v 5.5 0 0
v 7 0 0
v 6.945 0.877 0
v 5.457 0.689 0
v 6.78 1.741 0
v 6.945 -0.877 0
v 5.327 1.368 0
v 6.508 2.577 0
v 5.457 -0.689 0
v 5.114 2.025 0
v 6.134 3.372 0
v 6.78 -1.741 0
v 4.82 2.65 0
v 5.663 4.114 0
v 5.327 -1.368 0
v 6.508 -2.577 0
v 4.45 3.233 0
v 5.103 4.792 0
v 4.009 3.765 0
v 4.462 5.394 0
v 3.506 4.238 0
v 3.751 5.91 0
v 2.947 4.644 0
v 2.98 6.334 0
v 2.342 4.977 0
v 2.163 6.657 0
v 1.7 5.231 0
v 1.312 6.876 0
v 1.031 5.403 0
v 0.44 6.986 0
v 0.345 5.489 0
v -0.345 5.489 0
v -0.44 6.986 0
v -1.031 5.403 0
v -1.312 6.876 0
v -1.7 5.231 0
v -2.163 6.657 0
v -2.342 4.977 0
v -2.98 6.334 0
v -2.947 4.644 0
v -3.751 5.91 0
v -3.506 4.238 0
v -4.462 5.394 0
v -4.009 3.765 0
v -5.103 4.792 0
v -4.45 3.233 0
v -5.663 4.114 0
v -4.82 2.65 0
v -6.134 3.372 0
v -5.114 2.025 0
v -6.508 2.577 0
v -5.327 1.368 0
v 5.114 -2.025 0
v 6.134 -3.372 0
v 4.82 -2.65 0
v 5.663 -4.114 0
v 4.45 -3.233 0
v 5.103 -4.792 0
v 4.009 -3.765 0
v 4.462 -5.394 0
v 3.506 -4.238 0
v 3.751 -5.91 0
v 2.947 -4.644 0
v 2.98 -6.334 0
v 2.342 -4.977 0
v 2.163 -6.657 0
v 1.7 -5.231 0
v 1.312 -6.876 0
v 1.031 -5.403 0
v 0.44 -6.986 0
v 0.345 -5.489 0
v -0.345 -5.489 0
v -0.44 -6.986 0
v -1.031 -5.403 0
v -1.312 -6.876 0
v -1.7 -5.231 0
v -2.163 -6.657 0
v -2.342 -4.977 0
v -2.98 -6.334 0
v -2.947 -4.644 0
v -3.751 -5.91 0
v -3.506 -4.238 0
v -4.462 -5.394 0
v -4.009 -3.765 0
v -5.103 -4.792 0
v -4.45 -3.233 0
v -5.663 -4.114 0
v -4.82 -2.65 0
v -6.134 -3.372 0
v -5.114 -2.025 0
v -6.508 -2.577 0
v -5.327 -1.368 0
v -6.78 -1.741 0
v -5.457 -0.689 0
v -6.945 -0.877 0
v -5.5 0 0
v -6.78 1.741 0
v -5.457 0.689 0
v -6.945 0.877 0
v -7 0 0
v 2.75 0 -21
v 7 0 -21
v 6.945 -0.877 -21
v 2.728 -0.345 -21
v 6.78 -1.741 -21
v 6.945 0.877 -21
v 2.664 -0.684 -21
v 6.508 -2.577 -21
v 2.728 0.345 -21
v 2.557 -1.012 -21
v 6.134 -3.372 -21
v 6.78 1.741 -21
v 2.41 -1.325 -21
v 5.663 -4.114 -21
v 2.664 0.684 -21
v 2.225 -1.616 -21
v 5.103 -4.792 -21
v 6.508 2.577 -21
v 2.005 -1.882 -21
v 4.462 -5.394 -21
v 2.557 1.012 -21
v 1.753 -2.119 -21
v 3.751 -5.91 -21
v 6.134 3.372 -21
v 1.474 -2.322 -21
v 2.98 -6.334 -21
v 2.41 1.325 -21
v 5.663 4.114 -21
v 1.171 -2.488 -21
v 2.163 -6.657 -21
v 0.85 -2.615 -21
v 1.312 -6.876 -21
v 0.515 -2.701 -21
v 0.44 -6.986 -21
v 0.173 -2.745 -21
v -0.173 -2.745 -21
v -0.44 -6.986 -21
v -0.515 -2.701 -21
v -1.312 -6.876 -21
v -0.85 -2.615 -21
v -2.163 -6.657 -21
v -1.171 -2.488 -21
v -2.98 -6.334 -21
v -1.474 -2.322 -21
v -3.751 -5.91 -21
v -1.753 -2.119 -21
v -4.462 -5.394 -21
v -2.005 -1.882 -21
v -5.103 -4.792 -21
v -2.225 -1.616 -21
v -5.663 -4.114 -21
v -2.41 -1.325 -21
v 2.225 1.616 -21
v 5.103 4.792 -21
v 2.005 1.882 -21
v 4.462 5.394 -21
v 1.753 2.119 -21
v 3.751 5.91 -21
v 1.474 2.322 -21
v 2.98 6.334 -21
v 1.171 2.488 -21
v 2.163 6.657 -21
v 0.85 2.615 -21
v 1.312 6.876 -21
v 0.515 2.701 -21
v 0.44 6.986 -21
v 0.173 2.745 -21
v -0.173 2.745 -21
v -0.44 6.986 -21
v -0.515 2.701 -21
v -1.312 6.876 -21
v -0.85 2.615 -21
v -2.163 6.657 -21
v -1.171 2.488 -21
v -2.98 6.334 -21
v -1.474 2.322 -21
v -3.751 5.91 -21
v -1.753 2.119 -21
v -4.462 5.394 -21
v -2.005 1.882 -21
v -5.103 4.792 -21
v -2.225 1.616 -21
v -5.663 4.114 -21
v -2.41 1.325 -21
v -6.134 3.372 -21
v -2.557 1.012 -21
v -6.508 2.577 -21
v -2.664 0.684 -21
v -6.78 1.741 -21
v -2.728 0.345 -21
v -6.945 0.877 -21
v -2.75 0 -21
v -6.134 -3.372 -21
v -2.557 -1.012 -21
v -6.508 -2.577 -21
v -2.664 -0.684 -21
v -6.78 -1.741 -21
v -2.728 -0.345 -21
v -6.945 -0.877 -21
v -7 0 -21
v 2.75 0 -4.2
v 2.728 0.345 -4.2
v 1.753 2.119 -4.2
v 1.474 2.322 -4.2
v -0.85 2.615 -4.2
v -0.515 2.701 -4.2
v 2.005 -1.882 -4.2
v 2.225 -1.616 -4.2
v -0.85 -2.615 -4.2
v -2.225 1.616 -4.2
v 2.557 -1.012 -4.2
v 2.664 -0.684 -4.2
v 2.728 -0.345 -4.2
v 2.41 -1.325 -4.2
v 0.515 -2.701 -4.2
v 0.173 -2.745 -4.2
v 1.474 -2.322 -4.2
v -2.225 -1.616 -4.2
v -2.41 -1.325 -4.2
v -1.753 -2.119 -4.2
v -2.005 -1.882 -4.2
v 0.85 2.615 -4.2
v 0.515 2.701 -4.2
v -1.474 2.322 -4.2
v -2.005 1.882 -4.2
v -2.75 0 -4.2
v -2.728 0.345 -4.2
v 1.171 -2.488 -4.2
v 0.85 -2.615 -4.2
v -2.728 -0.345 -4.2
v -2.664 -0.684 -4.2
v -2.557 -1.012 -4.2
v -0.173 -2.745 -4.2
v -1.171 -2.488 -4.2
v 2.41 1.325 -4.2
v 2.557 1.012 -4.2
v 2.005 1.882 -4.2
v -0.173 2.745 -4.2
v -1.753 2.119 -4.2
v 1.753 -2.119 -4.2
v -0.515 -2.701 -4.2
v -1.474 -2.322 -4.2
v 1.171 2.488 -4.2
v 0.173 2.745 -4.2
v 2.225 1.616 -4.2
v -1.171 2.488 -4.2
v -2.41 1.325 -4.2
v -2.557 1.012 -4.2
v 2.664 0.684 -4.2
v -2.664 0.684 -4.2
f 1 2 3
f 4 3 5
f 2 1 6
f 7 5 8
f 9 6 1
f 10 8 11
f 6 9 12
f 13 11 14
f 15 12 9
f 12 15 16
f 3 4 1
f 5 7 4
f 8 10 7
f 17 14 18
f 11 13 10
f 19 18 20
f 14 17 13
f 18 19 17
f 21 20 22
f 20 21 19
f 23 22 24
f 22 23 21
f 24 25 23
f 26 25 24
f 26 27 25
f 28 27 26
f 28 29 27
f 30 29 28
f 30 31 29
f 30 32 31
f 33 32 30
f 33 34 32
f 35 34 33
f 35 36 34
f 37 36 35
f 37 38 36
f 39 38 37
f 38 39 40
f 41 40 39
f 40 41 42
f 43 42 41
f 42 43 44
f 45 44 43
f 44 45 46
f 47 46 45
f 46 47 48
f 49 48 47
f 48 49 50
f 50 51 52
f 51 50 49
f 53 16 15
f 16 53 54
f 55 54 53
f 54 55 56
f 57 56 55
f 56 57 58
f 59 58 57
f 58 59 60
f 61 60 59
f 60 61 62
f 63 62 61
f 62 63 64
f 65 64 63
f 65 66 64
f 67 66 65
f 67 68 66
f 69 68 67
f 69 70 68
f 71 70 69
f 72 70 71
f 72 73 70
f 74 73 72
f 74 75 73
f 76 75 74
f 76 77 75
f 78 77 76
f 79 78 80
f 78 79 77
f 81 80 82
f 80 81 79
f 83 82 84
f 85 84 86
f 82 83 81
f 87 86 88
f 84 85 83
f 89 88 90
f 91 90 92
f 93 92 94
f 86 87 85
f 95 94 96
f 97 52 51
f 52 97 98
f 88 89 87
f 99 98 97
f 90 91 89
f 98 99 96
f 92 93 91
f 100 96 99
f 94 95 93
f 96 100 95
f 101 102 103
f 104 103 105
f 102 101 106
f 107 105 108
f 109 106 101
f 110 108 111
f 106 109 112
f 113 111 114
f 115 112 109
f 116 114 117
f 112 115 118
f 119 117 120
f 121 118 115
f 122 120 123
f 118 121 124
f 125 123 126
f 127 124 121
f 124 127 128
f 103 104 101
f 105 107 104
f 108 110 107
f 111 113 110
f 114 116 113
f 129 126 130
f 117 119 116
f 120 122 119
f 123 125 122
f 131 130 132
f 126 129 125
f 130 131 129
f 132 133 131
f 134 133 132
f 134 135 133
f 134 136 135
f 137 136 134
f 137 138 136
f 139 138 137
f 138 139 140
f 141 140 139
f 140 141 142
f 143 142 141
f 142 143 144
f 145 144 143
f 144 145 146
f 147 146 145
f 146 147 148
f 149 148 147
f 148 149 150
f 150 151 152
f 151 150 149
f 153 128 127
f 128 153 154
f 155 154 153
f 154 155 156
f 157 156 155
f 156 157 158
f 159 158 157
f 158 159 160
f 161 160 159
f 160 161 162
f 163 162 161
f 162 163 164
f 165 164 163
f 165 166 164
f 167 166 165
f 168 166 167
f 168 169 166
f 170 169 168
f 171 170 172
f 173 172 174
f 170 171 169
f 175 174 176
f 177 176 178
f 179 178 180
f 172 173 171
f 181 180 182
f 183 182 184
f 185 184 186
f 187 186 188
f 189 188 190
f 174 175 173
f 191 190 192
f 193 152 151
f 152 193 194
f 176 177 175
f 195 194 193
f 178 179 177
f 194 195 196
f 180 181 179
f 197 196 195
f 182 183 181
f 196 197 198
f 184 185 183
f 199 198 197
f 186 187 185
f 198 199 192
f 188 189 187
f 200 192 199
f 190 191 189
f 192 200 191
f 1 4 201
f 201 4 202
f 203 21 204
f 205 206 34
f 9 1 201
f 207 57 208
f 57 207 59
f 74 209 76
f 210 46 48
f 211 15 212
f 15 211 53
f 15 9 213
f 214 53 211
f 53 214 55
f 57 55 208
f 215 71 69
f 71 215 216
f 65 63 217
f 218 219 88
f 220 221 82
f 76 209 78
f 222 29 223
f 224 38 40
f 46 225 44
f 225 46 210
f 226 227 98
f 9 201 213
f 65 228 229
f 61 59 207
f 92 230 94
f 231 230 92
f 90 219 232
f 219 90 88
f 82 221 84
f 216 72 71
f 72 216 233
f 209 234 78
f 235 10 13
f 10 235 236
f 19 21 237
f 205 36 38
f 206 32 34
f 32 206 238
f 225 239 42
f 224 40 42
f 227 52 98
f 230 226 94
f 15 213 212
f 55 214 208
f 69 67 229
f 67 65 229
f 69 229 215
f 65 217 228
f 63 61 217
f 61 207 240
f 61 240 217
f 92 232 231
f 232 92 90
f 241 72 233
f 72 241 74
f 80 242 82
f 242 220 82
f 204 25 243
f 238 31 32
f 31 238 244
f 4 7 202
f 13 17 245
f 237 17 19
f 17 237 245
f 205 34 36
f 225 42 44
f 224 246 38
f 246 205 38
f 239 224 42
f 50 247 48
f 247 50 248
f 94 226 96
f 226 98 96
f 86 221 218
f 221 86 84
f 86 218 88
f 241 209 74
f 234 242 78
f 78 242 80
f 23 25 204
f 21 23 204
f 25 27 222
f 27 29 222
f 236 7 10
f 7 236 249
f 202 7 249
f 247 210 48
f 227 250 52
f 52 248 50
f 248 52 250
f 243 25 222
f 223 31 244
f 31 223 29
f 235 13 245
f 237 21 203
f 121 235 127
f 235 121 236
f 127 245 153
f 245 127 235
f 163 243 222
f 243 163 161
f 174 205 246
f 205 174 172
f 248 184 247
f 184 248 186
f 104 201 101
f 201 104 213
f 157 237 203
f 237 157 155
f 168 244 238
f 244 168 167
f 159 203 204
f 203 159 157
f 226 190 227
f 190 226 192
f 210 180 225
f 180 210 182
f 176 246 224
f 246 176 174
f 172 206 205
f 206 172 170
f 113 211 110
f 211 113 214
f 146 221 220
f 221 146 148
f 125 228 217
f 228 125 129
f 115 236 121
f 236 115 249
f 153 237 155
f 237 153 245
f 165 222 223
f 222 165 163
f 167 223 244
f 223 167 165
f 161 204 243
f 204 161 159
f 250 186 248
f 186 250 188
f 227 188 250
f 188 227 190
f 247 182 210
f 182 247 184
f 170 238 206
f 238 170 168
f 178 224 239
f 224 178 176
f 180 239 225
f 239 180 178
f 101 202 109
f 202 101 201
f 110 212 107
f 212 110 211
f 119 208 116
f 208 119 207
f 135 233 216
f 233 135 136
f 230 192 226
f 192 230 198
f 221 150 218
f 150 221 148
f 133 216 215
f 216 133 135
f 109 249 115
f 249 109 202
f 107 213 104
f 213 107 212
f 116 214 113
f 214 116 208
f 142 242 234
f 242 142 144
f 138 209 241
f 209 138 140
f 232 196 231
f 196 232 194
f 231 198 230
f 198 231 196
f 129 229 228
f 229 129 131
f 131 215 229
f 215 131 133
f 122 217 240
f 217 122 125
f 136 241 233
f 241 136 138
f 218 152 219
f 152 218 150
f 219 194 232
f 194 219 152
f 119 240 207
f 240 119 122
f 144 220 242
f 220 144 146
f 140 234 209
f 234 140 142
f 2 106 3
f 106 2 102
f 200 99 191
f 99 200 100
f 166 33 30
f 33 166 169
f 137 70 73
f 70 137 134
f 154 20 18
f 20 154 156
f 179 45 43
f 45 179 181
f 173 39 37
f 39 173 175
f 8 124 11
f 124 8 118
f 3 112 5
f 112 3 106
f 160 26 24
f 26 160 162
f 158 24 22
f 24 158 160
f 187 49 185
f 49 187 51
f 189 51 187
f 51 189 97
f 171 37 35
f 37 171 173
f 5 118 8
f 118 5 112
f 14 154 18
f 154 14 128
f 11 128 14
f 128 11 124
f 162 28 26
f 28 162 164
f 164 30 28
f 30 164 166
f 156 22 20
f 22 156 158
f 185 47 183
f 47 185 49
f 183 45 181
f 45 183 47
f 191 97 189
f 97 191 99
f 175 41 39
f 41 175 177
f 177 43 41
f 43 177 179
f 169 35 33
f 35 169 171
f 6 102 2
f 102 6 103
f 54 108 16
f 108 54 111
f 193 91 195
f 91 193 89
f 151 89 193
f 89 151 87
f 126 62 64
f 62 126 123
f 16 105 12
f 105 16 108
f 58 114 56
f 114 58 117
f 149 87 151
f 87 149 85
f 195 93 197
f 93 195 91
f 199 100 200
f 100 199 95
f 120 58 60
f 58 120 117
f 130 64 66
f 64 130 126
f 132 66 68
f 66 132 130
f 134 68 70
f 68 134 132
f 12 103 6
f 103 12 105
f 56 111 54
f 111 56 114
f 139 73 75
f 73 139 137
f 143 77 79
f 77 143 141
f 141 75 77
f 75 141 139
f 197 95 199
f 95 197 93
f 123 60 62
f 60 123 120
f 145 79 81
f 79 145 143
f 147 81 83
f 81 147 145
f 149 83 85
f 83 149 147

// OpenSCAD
$fn = 50;


difference() {
	union() {
		translate(v = [0, 0, -21.0000000000]) {
			cylinder(h = 21, r = 7.0000000000);
		}
		cylinder(h = 0, r = 16.0000000000);
	}
	union() {
		translate(v = [0, 0, 0]) {
			rotate(a = [0, 0, 0]) {
				difference() {
					union() {
						#translate(v = [0, 0, -21.0000000000]) {
							cylinder(h = 21, r = 2.2500000000);
						}
						#translate(v = [0, 0, -4.2000000000]) {
							cylinder(h = 4.2000000000, r = 7.0000000000, r1 = 2.7500000000, r2 = 5.5000000000);
						}
						#translate(v = [0, 0, -21.0000000000]) {
							cylinder(h = 21, r = 2.7500000000);
						}
						#translate(v = [0, 0, -21.0000000000]) {
							cylinder(h = 21, r = 2.2500000000);
						}
					}
					union();
				}
			}
		}
	}
}
